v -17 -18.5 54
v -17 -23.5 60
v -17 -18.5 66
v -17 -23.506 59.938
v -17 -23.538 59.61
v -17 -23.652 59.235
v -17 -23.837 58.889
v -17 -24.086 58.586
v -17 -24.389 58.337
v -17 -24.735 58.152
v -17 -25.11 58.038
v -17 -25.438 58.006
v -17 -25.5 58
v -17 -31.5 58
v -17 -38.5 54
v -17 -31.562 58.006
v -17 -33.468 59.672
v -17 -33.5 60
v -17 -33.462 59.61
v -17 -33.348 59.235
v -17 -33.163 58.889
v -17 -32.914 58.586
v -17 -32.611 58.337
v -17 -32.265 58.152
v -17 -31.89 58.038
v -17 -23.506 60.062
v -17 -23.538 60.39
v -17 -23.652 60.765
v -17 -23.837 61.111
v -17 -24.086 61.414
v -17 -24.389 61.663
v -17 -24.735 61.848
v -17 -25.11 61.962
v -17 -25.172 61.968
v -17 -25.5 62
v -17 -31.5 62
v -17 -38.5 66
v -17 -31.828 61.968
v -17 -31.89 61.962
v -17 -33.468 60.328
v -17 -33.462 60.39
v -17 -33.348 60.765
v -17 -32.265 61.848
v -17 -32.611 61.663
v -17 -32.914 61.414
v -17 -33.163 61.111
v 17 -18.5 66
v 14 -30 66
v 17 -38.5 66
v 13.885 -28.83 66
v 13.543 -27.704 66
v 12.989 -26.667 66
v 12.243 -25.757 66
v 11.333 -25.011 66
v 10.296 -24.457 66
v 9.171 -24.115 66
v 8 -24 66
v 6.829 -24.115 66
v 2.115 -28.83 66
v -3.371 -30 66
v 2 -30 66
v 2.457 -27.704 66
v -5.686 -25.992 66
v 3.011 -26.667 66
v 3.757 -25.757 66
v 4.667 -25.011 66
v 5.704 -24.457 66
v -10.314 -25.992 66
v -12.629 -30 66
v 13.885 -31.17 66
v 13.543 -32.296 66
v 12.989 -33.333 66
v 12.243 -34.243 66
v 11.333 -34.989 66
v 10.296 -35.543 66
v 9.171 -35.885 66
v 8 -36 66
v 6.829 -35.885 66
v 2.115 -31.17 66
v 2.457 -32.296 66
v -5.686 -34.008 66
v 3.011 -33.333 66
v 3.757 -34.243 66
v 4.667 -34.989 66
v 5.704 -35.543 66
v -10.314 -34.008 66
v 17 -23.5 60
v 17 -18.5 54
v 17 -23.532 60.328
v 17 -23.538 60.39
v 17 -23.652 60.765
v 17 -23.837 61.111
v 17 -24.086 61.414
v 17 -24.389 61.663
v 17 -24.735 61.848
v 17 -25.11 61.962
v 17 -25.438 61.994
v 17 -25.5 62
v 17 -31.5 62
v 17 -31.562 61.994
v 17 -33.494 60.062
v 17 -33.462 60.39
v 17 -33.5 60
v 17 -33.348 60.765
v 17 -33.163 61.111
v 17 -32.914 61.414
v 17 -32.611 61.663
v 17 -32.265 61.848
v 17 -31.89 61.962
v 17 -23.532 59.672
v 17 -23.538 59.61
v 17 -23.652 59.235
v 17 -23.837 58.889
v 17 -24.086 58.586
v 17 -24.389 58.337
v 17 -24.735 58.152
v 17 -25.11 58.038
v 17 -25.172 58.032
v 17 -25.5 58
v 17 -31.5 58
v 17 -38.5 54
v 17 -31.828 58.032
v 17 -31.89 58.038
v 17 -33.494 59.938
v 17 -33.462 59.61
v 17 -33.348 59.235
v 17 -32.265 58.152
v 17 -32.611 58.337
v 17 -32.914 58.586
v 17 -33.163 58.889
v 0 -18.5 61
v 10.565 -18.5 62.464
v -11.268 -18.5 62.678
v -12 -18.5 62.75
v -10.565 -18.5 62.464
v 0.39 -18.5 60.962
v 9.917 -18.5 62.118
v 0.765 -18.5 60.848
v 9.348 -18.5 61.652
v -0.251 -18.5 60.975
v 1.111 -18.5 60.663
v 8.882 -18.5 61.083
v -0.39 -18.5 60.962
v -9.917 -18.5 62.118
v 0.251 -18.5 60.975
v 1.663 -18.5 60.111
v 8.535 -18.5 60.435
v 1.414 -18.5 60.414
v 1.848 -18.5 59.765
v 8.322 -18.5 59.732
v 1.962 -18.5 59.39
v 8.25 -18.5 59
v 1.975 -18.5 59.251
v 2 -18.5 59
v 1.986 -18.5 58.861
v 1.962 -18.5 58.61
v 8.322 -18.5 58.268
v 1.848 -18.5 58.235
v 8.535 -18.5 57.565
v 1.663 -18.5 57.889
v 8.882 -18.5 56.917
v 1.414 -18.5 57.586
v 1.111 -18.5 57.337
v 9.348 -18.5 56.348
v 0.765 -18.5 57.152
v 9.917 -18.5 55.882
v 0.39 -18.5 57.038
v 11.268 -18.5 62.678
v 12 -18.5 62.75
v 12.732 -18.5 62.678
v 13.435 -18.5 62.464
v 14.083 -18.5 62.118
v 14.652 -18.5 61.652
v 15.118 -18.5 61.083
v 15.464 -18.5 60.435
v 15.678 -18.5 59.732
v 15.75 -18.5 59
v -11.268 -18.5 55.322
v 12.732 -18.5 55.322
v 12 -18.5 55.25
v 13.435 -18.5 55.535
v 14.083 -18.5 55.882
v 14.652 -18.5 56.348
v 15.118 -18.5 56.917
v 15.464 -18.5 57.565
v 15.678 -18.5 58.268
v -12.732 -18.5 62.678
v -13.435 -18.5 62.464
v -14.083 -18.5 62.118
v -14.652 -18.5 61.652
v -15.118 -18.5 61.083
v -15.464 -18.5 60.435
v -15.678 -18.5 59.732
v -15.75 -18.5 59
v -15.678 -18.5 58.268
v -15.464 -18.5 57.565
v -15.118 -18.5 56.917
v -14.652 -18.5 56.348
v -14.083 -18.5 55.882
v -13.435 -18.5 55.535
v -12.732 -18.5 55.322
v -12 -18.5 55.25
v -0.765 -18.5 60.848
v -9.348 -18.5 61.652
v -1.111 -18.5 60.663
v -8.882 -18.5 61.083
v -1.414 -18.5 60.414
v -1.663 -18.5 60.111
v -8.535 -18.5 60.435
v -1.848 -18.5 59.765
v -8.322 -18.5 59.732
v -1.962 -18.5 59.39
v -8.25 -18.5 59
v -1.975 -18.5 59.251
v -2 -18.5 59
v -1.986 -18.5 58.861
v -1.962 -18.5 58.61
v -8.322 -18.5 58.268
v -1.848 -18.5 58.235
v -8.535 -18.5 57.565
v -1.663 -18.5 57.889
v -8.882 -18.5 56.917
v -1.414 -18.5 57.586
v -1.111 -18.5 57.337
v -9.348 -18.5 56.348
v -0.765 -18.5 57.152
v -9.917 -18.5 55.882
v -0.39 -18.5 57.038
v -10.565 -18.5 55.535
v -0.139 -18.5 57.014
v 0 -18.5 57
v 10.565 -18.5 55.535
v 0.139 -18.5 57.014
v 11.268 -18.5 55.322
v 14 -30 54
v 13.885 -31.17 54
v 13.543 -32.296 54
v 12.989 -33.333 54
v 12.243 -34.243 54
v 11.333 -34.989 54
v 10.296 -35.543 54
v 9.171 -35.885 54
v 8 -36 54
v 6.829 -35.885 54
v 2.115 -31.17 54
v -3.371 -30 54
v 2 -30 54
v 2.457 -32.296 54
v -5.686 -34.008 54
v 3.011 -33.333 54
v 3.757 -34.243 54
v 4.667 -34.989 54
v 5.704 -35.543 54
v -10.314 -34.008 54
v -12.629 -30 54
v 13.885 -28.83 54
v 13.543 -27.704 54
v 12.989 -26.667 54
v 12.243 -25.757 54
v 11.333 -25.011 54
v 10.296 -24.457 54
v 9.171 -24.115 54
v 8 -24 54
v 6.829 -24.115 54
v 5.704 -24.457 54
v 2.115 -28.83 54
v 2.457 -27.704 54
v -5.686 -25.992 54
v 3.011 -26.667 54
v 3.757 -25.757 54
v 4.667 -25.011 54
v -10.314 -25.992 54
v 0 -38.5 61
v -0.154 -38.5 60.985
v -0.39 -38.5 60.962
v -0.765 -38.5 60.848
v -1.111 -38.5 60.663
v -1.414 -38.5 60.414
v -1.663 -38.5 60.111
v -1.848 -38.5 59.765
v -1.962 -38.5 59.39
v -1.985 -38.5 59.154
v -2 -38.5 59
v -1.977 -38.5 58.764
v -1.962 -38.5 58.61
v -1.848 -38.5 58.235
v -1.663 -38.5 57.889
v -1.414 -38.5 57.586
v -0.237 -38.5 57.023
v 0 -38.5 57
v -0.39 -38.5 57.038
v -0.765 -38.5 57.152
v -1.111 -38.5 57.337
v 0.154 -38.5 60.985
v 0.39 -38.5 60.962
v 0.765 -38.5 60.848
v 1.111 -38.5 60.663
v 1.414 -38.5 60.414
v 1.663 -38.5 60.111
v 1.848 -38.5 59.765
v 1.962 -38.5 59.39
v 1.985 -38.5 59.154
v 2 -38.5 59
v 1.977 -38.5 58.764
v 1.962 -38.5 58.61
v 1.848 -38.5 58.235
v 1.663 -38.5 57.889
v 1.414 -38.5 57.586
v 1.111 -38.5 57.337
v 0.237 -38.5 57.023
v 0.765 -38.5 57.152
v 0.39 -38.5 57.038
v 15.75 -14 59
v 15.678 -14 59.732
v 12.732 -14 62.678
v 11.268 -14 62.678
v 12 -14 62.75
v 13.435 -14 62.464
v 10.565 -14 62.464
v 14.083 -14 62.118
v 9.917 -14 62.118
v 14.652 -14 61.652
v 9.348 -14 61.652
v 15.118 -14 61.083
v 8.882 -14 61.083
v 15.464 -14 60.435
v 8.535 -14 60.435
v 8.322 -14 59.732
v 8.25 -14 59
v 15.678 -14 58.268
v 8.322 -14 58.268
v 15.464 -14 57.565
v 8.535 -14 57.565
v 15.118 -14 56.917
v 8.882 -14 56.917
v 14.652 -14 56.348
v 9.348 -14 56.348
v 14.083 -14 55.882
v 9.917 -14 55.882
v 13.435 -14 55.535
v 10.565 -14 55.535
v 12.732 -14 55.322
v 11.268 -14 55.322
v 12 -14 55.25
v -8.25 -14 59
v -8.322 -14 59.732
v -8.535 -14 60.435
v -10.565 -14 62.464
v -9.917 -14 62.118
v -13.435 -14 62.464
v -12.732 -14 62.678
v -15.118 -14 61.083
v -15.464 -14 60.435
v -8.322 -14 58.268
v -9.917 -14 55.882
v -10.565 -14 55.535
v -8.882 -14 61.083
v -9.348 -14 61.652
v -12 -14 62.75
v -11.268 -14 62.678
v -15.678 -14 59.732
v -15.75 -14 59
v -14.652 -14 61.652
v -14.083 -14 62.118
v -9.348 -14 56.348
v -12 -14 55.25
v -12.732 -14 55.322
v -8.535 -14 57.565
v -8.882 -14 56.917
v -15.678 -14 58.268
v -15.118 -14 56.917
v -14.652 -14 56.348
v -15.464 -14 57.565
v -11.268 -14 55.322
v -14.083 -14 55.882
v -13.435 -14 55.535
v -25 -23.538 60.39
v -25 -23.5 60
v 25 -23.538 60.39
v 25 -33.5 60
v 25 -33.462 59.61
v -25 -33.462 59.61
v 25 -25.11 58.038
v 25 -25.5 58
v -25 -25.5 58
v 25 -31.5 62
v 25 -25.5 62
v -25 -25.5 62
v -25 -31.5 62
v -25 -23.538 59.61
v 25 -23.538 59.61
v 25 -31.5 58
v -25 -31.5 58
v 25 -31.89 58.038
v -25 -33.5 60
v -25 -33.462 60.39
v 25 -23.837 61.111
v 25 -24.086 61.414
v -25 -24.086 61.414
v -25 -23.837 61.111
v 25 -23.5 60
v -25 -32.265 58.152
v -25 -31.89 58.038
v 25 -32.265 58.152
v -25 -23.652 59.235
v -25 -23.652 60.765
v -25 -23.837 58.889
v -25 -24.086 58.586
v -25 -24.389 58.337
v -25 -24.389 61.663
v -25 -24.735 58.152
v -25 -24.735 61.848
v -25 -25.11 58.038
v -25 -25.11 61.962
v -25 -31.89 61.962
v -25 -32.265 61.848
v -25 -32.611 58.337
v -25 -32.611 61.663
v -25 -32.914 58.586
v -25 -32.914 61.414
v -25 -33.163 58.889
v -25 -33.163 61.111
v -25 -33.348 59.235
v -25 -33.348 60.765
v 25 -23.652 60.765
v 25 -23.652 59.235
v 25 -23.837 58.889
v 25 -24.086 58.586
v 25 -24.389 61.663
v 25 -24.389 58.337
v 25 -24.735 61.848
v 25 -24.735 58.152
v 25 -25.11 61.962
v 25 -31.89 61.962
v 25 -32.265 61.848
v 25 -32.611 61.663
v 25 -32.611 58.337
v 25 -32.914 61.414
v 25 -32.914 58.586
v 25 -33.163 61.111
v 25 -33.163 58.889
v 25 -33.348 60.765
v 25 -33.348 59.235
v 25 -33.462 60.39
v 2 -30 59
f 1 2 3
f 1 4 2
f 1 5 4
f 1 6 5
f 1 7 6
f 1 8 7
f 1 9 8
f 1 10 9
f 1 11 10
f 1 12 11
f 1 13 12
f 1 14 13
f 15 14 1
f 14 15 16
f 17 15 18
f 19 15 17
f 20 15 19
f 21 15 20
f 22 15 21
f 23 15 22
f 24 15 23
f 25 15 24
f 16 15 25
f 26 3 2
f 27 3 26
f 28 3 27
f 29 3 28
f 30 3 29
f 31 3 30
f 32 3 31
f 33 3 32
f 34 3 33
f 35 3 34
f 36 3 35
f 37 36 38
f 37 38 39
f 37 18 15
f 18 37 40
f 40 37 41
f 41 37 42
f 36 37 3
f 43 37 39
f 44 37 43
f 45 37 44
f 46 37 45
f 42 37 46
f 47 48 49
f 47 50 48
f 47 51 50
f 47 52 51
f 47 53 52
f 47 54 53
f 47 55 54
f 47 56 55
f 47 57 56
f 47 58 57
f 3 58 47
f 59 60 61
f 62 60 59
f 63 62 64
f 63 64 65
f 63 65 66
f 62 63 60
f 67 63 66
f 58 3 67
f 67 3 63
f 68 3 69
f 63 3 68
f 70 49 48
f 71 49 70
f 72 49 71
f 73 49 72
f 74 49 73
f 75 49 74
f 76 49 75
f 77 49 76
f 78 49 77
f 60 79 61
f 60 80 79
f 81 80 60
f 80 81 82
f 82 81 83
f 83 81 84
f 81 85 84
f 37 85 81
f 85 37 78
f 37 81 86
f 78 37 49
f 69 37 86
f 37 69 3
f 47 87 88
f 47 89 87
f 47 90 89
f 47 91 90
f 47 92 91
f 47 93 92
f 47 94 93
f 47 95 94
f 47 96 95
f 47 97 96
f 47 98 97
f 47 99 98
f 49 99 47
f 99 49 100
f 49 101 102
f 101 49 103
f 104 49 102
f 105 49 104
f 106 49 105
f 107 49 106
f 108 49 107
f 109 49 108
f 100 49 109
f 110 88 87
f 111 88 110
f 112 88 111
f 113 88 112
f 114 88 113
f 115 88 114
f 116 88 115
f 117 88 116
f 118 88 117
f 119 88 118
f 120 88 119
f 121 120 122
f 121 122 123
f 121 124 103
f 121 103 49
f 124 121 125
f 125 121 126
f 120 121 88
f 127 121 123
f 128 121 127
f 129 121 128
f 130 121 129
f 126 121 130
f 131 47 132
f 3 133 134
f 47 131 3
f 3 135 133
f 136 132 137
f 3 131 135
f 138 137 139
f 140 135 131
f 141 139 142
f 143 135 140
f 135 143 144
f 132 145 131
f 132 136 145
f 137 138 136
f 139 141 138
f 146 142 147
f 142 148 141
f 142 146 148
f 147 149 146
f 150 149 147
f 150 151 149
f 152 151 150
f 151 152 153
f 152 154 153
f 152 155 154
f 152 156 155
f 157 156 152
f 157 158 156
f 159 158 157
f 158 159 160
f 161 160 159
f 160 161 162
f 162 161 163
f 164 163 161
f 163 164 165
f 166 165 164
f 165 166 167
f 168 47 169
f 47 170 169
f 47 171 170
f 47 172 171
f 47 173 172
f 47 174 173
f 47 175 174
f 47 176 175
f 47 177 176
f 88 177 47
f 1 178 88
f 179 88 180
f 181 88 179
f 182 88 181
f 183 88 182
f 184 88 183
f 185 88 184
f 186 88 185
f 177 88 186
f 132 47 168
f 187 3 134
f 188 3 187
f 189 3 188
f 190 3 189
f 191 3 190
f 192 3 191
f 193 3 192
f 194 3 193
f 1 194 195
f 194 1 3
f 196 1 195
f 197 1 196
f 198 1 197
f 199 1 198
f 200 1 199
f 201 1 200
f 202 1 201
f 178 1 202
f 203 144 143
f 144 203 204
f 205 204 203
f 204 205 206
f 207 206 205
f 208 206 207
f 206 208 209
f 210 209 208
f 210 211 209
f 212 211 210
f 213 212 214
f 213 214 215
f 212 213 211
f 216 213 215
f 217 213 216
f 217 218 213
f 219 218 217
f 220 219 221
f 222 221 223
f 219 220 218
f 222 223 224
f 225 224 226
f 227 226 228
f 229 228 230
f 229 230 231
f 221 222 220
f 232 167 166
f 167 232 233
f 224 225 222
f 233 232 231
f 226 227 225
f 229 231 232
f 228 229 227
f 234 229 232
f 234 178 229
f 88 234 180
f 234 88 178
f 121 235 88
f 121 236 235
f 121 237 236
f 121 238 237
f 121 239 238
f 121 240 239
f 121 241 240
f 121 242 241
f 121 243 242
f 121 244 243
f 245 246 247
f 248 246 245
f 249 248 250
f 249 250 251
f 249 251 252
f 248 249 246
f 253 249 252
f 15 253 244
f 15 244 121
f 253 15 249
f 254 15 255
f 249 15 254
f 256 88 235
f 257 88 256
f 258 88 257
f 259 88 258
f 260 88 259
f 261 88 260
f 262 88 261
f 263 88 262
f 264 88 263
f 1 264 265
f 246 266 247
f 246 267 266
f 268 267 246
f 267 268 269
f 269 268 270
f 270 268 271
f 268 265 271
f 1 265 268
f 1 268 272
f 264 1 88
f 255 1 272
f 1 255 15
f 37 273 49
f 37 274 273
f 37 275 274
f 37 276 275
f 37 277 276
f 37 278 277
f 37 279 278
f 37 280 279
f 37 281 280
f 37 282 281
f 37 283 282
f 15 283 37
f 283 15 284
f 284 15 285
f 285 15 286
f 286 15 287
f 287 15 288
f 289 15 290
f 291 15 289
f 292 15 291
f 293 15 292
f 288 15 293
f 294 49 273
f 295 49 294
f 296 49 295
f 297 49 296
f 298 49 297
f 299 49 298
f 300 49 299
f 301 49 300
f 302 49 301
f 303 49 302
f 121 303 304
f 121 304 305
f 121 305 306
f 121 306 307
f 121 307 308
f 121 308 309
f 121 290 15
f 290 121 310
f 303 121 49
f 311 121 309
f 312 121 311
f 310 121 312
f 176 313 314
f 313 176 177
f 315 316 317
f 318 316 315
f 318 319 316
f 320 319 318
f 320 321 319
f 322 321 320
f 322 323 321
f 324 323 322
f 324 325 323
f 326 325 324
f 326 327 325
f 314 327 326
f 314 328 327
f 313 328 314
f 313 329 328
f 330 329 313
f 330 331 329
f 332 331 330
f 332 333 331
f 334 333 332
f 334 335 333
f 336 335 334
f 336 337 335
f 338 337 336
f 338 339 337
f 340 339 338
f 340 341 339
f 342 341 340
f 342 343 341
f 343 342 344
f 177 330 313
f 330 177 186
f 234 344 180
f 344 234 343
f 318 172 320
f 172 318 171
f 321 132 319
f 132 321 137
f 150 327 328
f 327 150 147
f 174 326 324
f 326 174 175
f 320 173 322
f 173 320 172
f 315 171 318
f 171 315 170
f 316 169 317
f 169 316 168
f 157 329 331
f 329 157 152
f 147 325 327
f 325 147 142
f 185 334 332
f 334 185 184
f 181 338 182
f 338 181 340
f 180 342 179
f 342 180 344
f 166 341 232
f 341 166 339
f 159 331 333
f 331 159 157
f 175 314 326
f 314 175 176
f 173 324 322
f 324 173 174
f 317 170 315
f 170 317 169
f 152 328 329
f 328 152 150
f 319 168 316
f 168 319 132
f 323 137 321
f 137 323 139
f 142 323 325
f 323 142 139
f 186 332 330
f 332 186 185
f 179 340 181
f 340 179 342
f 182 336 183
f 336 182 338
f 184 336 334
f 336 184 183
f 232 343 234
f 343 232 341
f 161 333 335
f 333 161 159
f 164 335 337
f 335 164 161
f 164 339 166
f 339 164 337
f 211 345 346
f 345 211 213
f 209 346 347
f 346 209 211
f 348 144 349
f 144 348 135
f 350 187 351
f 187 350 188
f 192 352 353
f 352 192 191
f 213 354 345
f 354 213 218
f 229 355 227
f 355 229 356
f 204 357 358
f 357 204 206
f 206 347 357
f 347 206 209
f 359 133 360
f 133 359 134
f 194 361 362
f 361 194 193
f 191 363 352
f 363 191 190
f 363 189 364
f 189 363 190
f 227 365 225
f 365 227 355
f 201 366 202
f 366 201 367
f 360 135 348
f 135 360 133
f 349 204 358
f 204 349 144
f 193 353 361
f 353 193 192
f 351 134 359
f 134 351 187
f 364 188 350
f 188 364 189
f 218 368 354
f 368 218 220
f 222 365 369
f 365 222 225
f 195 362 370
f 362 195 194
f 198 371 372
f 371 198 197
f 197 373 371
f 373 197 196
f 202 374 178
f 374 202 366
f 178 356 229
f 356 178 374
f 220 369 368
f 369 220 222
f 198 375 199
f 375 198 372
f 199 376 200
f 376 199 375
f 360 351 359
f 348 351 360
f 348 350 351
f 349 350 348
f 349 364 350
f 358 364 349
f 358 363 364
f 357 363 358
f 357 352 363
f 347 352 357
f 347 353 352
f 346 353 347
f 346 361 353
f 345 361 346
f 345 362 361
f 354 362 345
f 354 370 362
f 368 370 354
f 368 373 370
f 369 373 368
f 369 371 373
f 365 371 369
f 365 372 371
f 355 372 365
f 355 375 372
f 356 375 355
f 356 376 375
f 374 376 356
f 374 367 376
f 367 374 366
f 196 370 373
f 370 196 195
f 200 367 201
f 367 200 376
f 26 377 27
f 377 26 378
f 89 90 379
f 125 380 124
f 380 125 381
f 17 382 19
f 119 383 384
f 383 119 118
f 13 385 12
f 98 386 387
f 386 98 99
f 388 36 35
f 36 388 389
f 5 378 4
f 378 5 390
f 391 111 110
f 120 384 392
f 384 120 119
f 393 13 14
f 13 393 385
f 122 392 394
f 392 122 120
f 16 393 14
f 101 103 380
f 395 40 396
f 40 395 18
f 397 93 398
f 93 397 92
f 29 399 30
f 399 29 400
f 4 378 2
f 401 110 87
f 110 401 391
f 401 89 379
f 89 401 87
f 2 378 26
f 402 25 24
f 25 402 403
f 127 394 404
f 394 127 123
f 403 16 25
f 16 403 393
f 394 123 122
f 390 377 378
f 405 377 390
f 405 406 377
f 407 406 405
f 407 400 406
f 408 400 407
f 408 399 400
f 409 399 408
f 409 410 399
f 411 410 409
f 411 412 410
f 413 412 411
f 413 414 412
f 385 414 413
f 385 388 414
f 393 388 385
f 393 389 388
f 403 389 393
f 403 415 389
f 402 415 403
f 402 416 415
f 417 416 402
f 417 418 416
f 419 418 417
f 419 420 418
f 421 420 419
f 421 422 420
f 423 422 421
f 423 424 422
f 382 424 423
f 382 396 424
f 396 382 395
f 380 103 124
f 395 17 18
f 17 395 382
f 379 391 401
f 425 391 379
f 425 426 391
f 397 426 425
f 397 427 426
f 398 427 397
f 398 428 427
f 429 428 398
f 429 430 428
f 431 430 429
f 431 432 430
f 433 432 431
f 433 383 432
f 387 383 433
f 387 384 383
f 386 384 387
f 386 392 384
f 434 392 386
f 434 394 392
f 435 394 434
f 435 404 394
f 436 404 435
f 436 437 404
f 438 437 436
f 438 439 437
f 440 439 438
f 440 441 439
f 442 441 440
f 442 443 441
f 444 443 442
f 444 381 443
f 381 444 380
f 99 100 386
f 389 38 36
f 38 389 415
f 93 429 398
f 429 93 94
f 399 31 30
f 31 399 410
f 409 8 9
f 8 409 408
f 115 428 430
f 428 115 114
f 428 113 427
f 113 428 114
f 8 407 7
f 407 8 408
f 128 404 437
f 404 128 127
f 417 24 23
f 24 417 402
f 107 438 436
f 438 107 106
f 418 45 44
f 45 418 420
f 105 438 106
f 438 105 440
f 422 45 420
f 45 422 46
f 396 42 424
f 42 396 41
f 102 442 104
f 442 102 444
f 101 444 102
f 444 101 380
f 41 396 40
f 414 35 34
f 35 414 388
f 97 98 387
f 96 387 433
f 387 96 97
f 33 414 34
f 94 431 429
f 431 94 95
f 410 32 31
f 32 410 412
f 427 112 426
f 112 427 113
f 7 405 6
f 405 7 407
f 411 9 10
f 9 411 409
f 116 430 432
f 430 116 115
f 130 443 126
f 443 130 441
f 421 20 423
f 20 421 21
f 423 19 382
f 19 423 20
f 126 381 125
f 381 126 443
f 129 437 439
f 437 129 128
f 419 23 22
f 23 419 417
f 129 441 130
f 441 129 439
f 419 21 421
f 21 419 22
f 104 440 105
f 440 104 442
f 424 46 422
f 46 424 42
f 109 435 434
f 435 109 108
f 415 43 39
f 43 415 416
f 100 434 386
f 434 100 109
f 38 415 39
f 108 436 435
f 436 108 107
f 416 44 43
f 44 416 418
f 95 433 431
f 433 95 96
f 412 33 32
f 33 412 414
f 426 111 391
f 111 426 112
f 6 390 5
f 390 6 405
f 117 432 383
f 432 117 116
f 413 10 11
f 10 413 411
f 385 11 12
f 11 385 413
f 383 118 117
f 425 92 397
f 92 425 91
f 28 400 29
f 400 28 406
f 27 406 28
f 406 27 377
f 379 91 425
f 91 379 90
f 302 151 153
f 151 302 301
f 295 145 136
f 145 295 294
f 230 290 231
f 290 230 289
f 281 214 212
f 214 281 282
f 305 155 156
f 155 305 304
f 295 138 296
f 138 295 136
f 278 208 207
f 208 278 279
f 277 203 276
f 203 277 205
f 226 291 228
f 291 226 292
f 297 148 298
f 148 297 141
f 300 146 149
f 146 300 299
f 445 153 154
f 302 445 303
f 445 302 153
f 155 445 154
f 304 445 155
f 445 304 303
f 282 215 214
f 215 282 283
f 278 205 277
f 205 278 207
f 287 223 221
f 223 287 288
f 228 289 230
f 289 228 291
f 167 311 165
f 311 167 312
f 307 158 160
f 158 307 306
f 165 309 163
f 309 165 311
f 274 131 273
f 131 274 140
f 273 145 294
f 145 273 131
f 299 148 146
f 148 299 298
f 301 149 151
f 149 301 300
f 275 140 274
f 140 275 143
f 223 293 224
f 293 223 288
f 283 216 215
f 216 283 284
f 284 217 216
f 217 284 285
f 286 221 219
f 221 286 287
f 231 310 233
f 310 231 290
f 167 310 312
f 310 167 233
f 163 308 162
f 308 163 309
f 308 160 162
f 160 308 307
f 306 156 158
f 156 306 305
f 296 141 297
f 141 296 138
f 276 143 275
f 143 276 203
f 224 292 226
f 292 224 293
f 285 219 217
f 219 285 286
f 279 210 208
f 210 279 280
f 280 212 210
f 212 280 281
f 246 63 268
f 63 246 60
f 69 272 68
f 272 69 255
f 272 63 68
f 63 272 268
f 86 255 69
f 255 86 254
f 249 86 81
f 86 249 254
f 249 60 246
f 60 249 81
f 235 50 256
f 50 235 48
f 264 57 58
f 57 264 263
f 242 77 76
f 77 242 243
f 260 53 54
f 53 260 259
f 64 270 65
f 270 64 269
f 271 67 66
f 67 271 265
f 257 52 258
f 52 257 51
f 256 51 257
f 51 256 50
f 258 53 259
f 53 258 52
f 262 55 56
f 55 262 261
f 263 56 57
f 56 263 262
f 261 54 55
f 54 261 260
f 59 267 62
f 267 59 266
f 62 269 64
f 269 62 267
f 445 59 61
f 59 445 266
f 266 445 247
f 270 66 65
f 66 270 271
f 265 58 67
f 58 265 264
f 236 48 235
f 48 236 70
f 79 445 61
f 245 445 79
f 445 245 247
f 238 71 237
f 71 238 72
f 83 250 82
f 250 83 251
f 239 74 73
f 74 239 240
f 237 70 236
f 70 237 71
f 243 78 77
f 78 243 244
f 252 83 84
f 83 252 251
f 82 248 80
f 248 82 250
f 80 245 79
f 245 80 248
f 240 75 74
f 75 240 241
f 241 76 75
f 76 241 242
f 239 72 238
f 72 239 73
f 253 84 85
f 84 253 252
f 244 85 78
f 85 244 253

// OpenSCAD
$fn=32;

translate([0,0,0])
rotate([0,0,0])
difference(){
    union(){
        translate([0,-35+11.5-5,-5+15+2+50-6+4])cube([23+4+7,16+4,12],center=true);
        translate([12,-7-7-5+5,55+4])rotate([90,0,0])cylinder(r=7.5/2,h=010);
        translate([-12,-7-7-5+5,55+4])rotate([90,0,0])cylinder(r=7.5/2,h=10);
        translate([0,16.5,40])
        hull(){
            translate([0,-45+3,20])rotate([90,0,90])cylinder(r=4/2,h=50,center=true);
            translate([0,-45-3,20])rotate([90,0,90])cylinder(r=4/2,h=50,center=true);
        }
    }
    
    #translate([0,-30,55+4])rotate([90,0,0])cylinder(r=4/2,h=80,center=true);
    
    #translate([-8,-30,45])cylinder(r=(8.8*(8.1/7.7))/2,h=30,$fn=6);
    #translate([8,-30,45])cylinder(r=12/2,h=30,$fn=32);
}

/*
difference(){
cylinder(r=15/2,h=20);
translate([0,0,-5])cylinder(r1=14/2,r2=9/2,h=20);
translate([0,0,-1])
hull(){
#translate([0-3,0,20-2.5])rotate([90,0,0])cylinder(r=4/2,h=80,center=true);
#translate([0+3,0,20-2.5])rotate([90,0,0])cylinder(r=4/2,h=80,center=true);
}
}
*/
